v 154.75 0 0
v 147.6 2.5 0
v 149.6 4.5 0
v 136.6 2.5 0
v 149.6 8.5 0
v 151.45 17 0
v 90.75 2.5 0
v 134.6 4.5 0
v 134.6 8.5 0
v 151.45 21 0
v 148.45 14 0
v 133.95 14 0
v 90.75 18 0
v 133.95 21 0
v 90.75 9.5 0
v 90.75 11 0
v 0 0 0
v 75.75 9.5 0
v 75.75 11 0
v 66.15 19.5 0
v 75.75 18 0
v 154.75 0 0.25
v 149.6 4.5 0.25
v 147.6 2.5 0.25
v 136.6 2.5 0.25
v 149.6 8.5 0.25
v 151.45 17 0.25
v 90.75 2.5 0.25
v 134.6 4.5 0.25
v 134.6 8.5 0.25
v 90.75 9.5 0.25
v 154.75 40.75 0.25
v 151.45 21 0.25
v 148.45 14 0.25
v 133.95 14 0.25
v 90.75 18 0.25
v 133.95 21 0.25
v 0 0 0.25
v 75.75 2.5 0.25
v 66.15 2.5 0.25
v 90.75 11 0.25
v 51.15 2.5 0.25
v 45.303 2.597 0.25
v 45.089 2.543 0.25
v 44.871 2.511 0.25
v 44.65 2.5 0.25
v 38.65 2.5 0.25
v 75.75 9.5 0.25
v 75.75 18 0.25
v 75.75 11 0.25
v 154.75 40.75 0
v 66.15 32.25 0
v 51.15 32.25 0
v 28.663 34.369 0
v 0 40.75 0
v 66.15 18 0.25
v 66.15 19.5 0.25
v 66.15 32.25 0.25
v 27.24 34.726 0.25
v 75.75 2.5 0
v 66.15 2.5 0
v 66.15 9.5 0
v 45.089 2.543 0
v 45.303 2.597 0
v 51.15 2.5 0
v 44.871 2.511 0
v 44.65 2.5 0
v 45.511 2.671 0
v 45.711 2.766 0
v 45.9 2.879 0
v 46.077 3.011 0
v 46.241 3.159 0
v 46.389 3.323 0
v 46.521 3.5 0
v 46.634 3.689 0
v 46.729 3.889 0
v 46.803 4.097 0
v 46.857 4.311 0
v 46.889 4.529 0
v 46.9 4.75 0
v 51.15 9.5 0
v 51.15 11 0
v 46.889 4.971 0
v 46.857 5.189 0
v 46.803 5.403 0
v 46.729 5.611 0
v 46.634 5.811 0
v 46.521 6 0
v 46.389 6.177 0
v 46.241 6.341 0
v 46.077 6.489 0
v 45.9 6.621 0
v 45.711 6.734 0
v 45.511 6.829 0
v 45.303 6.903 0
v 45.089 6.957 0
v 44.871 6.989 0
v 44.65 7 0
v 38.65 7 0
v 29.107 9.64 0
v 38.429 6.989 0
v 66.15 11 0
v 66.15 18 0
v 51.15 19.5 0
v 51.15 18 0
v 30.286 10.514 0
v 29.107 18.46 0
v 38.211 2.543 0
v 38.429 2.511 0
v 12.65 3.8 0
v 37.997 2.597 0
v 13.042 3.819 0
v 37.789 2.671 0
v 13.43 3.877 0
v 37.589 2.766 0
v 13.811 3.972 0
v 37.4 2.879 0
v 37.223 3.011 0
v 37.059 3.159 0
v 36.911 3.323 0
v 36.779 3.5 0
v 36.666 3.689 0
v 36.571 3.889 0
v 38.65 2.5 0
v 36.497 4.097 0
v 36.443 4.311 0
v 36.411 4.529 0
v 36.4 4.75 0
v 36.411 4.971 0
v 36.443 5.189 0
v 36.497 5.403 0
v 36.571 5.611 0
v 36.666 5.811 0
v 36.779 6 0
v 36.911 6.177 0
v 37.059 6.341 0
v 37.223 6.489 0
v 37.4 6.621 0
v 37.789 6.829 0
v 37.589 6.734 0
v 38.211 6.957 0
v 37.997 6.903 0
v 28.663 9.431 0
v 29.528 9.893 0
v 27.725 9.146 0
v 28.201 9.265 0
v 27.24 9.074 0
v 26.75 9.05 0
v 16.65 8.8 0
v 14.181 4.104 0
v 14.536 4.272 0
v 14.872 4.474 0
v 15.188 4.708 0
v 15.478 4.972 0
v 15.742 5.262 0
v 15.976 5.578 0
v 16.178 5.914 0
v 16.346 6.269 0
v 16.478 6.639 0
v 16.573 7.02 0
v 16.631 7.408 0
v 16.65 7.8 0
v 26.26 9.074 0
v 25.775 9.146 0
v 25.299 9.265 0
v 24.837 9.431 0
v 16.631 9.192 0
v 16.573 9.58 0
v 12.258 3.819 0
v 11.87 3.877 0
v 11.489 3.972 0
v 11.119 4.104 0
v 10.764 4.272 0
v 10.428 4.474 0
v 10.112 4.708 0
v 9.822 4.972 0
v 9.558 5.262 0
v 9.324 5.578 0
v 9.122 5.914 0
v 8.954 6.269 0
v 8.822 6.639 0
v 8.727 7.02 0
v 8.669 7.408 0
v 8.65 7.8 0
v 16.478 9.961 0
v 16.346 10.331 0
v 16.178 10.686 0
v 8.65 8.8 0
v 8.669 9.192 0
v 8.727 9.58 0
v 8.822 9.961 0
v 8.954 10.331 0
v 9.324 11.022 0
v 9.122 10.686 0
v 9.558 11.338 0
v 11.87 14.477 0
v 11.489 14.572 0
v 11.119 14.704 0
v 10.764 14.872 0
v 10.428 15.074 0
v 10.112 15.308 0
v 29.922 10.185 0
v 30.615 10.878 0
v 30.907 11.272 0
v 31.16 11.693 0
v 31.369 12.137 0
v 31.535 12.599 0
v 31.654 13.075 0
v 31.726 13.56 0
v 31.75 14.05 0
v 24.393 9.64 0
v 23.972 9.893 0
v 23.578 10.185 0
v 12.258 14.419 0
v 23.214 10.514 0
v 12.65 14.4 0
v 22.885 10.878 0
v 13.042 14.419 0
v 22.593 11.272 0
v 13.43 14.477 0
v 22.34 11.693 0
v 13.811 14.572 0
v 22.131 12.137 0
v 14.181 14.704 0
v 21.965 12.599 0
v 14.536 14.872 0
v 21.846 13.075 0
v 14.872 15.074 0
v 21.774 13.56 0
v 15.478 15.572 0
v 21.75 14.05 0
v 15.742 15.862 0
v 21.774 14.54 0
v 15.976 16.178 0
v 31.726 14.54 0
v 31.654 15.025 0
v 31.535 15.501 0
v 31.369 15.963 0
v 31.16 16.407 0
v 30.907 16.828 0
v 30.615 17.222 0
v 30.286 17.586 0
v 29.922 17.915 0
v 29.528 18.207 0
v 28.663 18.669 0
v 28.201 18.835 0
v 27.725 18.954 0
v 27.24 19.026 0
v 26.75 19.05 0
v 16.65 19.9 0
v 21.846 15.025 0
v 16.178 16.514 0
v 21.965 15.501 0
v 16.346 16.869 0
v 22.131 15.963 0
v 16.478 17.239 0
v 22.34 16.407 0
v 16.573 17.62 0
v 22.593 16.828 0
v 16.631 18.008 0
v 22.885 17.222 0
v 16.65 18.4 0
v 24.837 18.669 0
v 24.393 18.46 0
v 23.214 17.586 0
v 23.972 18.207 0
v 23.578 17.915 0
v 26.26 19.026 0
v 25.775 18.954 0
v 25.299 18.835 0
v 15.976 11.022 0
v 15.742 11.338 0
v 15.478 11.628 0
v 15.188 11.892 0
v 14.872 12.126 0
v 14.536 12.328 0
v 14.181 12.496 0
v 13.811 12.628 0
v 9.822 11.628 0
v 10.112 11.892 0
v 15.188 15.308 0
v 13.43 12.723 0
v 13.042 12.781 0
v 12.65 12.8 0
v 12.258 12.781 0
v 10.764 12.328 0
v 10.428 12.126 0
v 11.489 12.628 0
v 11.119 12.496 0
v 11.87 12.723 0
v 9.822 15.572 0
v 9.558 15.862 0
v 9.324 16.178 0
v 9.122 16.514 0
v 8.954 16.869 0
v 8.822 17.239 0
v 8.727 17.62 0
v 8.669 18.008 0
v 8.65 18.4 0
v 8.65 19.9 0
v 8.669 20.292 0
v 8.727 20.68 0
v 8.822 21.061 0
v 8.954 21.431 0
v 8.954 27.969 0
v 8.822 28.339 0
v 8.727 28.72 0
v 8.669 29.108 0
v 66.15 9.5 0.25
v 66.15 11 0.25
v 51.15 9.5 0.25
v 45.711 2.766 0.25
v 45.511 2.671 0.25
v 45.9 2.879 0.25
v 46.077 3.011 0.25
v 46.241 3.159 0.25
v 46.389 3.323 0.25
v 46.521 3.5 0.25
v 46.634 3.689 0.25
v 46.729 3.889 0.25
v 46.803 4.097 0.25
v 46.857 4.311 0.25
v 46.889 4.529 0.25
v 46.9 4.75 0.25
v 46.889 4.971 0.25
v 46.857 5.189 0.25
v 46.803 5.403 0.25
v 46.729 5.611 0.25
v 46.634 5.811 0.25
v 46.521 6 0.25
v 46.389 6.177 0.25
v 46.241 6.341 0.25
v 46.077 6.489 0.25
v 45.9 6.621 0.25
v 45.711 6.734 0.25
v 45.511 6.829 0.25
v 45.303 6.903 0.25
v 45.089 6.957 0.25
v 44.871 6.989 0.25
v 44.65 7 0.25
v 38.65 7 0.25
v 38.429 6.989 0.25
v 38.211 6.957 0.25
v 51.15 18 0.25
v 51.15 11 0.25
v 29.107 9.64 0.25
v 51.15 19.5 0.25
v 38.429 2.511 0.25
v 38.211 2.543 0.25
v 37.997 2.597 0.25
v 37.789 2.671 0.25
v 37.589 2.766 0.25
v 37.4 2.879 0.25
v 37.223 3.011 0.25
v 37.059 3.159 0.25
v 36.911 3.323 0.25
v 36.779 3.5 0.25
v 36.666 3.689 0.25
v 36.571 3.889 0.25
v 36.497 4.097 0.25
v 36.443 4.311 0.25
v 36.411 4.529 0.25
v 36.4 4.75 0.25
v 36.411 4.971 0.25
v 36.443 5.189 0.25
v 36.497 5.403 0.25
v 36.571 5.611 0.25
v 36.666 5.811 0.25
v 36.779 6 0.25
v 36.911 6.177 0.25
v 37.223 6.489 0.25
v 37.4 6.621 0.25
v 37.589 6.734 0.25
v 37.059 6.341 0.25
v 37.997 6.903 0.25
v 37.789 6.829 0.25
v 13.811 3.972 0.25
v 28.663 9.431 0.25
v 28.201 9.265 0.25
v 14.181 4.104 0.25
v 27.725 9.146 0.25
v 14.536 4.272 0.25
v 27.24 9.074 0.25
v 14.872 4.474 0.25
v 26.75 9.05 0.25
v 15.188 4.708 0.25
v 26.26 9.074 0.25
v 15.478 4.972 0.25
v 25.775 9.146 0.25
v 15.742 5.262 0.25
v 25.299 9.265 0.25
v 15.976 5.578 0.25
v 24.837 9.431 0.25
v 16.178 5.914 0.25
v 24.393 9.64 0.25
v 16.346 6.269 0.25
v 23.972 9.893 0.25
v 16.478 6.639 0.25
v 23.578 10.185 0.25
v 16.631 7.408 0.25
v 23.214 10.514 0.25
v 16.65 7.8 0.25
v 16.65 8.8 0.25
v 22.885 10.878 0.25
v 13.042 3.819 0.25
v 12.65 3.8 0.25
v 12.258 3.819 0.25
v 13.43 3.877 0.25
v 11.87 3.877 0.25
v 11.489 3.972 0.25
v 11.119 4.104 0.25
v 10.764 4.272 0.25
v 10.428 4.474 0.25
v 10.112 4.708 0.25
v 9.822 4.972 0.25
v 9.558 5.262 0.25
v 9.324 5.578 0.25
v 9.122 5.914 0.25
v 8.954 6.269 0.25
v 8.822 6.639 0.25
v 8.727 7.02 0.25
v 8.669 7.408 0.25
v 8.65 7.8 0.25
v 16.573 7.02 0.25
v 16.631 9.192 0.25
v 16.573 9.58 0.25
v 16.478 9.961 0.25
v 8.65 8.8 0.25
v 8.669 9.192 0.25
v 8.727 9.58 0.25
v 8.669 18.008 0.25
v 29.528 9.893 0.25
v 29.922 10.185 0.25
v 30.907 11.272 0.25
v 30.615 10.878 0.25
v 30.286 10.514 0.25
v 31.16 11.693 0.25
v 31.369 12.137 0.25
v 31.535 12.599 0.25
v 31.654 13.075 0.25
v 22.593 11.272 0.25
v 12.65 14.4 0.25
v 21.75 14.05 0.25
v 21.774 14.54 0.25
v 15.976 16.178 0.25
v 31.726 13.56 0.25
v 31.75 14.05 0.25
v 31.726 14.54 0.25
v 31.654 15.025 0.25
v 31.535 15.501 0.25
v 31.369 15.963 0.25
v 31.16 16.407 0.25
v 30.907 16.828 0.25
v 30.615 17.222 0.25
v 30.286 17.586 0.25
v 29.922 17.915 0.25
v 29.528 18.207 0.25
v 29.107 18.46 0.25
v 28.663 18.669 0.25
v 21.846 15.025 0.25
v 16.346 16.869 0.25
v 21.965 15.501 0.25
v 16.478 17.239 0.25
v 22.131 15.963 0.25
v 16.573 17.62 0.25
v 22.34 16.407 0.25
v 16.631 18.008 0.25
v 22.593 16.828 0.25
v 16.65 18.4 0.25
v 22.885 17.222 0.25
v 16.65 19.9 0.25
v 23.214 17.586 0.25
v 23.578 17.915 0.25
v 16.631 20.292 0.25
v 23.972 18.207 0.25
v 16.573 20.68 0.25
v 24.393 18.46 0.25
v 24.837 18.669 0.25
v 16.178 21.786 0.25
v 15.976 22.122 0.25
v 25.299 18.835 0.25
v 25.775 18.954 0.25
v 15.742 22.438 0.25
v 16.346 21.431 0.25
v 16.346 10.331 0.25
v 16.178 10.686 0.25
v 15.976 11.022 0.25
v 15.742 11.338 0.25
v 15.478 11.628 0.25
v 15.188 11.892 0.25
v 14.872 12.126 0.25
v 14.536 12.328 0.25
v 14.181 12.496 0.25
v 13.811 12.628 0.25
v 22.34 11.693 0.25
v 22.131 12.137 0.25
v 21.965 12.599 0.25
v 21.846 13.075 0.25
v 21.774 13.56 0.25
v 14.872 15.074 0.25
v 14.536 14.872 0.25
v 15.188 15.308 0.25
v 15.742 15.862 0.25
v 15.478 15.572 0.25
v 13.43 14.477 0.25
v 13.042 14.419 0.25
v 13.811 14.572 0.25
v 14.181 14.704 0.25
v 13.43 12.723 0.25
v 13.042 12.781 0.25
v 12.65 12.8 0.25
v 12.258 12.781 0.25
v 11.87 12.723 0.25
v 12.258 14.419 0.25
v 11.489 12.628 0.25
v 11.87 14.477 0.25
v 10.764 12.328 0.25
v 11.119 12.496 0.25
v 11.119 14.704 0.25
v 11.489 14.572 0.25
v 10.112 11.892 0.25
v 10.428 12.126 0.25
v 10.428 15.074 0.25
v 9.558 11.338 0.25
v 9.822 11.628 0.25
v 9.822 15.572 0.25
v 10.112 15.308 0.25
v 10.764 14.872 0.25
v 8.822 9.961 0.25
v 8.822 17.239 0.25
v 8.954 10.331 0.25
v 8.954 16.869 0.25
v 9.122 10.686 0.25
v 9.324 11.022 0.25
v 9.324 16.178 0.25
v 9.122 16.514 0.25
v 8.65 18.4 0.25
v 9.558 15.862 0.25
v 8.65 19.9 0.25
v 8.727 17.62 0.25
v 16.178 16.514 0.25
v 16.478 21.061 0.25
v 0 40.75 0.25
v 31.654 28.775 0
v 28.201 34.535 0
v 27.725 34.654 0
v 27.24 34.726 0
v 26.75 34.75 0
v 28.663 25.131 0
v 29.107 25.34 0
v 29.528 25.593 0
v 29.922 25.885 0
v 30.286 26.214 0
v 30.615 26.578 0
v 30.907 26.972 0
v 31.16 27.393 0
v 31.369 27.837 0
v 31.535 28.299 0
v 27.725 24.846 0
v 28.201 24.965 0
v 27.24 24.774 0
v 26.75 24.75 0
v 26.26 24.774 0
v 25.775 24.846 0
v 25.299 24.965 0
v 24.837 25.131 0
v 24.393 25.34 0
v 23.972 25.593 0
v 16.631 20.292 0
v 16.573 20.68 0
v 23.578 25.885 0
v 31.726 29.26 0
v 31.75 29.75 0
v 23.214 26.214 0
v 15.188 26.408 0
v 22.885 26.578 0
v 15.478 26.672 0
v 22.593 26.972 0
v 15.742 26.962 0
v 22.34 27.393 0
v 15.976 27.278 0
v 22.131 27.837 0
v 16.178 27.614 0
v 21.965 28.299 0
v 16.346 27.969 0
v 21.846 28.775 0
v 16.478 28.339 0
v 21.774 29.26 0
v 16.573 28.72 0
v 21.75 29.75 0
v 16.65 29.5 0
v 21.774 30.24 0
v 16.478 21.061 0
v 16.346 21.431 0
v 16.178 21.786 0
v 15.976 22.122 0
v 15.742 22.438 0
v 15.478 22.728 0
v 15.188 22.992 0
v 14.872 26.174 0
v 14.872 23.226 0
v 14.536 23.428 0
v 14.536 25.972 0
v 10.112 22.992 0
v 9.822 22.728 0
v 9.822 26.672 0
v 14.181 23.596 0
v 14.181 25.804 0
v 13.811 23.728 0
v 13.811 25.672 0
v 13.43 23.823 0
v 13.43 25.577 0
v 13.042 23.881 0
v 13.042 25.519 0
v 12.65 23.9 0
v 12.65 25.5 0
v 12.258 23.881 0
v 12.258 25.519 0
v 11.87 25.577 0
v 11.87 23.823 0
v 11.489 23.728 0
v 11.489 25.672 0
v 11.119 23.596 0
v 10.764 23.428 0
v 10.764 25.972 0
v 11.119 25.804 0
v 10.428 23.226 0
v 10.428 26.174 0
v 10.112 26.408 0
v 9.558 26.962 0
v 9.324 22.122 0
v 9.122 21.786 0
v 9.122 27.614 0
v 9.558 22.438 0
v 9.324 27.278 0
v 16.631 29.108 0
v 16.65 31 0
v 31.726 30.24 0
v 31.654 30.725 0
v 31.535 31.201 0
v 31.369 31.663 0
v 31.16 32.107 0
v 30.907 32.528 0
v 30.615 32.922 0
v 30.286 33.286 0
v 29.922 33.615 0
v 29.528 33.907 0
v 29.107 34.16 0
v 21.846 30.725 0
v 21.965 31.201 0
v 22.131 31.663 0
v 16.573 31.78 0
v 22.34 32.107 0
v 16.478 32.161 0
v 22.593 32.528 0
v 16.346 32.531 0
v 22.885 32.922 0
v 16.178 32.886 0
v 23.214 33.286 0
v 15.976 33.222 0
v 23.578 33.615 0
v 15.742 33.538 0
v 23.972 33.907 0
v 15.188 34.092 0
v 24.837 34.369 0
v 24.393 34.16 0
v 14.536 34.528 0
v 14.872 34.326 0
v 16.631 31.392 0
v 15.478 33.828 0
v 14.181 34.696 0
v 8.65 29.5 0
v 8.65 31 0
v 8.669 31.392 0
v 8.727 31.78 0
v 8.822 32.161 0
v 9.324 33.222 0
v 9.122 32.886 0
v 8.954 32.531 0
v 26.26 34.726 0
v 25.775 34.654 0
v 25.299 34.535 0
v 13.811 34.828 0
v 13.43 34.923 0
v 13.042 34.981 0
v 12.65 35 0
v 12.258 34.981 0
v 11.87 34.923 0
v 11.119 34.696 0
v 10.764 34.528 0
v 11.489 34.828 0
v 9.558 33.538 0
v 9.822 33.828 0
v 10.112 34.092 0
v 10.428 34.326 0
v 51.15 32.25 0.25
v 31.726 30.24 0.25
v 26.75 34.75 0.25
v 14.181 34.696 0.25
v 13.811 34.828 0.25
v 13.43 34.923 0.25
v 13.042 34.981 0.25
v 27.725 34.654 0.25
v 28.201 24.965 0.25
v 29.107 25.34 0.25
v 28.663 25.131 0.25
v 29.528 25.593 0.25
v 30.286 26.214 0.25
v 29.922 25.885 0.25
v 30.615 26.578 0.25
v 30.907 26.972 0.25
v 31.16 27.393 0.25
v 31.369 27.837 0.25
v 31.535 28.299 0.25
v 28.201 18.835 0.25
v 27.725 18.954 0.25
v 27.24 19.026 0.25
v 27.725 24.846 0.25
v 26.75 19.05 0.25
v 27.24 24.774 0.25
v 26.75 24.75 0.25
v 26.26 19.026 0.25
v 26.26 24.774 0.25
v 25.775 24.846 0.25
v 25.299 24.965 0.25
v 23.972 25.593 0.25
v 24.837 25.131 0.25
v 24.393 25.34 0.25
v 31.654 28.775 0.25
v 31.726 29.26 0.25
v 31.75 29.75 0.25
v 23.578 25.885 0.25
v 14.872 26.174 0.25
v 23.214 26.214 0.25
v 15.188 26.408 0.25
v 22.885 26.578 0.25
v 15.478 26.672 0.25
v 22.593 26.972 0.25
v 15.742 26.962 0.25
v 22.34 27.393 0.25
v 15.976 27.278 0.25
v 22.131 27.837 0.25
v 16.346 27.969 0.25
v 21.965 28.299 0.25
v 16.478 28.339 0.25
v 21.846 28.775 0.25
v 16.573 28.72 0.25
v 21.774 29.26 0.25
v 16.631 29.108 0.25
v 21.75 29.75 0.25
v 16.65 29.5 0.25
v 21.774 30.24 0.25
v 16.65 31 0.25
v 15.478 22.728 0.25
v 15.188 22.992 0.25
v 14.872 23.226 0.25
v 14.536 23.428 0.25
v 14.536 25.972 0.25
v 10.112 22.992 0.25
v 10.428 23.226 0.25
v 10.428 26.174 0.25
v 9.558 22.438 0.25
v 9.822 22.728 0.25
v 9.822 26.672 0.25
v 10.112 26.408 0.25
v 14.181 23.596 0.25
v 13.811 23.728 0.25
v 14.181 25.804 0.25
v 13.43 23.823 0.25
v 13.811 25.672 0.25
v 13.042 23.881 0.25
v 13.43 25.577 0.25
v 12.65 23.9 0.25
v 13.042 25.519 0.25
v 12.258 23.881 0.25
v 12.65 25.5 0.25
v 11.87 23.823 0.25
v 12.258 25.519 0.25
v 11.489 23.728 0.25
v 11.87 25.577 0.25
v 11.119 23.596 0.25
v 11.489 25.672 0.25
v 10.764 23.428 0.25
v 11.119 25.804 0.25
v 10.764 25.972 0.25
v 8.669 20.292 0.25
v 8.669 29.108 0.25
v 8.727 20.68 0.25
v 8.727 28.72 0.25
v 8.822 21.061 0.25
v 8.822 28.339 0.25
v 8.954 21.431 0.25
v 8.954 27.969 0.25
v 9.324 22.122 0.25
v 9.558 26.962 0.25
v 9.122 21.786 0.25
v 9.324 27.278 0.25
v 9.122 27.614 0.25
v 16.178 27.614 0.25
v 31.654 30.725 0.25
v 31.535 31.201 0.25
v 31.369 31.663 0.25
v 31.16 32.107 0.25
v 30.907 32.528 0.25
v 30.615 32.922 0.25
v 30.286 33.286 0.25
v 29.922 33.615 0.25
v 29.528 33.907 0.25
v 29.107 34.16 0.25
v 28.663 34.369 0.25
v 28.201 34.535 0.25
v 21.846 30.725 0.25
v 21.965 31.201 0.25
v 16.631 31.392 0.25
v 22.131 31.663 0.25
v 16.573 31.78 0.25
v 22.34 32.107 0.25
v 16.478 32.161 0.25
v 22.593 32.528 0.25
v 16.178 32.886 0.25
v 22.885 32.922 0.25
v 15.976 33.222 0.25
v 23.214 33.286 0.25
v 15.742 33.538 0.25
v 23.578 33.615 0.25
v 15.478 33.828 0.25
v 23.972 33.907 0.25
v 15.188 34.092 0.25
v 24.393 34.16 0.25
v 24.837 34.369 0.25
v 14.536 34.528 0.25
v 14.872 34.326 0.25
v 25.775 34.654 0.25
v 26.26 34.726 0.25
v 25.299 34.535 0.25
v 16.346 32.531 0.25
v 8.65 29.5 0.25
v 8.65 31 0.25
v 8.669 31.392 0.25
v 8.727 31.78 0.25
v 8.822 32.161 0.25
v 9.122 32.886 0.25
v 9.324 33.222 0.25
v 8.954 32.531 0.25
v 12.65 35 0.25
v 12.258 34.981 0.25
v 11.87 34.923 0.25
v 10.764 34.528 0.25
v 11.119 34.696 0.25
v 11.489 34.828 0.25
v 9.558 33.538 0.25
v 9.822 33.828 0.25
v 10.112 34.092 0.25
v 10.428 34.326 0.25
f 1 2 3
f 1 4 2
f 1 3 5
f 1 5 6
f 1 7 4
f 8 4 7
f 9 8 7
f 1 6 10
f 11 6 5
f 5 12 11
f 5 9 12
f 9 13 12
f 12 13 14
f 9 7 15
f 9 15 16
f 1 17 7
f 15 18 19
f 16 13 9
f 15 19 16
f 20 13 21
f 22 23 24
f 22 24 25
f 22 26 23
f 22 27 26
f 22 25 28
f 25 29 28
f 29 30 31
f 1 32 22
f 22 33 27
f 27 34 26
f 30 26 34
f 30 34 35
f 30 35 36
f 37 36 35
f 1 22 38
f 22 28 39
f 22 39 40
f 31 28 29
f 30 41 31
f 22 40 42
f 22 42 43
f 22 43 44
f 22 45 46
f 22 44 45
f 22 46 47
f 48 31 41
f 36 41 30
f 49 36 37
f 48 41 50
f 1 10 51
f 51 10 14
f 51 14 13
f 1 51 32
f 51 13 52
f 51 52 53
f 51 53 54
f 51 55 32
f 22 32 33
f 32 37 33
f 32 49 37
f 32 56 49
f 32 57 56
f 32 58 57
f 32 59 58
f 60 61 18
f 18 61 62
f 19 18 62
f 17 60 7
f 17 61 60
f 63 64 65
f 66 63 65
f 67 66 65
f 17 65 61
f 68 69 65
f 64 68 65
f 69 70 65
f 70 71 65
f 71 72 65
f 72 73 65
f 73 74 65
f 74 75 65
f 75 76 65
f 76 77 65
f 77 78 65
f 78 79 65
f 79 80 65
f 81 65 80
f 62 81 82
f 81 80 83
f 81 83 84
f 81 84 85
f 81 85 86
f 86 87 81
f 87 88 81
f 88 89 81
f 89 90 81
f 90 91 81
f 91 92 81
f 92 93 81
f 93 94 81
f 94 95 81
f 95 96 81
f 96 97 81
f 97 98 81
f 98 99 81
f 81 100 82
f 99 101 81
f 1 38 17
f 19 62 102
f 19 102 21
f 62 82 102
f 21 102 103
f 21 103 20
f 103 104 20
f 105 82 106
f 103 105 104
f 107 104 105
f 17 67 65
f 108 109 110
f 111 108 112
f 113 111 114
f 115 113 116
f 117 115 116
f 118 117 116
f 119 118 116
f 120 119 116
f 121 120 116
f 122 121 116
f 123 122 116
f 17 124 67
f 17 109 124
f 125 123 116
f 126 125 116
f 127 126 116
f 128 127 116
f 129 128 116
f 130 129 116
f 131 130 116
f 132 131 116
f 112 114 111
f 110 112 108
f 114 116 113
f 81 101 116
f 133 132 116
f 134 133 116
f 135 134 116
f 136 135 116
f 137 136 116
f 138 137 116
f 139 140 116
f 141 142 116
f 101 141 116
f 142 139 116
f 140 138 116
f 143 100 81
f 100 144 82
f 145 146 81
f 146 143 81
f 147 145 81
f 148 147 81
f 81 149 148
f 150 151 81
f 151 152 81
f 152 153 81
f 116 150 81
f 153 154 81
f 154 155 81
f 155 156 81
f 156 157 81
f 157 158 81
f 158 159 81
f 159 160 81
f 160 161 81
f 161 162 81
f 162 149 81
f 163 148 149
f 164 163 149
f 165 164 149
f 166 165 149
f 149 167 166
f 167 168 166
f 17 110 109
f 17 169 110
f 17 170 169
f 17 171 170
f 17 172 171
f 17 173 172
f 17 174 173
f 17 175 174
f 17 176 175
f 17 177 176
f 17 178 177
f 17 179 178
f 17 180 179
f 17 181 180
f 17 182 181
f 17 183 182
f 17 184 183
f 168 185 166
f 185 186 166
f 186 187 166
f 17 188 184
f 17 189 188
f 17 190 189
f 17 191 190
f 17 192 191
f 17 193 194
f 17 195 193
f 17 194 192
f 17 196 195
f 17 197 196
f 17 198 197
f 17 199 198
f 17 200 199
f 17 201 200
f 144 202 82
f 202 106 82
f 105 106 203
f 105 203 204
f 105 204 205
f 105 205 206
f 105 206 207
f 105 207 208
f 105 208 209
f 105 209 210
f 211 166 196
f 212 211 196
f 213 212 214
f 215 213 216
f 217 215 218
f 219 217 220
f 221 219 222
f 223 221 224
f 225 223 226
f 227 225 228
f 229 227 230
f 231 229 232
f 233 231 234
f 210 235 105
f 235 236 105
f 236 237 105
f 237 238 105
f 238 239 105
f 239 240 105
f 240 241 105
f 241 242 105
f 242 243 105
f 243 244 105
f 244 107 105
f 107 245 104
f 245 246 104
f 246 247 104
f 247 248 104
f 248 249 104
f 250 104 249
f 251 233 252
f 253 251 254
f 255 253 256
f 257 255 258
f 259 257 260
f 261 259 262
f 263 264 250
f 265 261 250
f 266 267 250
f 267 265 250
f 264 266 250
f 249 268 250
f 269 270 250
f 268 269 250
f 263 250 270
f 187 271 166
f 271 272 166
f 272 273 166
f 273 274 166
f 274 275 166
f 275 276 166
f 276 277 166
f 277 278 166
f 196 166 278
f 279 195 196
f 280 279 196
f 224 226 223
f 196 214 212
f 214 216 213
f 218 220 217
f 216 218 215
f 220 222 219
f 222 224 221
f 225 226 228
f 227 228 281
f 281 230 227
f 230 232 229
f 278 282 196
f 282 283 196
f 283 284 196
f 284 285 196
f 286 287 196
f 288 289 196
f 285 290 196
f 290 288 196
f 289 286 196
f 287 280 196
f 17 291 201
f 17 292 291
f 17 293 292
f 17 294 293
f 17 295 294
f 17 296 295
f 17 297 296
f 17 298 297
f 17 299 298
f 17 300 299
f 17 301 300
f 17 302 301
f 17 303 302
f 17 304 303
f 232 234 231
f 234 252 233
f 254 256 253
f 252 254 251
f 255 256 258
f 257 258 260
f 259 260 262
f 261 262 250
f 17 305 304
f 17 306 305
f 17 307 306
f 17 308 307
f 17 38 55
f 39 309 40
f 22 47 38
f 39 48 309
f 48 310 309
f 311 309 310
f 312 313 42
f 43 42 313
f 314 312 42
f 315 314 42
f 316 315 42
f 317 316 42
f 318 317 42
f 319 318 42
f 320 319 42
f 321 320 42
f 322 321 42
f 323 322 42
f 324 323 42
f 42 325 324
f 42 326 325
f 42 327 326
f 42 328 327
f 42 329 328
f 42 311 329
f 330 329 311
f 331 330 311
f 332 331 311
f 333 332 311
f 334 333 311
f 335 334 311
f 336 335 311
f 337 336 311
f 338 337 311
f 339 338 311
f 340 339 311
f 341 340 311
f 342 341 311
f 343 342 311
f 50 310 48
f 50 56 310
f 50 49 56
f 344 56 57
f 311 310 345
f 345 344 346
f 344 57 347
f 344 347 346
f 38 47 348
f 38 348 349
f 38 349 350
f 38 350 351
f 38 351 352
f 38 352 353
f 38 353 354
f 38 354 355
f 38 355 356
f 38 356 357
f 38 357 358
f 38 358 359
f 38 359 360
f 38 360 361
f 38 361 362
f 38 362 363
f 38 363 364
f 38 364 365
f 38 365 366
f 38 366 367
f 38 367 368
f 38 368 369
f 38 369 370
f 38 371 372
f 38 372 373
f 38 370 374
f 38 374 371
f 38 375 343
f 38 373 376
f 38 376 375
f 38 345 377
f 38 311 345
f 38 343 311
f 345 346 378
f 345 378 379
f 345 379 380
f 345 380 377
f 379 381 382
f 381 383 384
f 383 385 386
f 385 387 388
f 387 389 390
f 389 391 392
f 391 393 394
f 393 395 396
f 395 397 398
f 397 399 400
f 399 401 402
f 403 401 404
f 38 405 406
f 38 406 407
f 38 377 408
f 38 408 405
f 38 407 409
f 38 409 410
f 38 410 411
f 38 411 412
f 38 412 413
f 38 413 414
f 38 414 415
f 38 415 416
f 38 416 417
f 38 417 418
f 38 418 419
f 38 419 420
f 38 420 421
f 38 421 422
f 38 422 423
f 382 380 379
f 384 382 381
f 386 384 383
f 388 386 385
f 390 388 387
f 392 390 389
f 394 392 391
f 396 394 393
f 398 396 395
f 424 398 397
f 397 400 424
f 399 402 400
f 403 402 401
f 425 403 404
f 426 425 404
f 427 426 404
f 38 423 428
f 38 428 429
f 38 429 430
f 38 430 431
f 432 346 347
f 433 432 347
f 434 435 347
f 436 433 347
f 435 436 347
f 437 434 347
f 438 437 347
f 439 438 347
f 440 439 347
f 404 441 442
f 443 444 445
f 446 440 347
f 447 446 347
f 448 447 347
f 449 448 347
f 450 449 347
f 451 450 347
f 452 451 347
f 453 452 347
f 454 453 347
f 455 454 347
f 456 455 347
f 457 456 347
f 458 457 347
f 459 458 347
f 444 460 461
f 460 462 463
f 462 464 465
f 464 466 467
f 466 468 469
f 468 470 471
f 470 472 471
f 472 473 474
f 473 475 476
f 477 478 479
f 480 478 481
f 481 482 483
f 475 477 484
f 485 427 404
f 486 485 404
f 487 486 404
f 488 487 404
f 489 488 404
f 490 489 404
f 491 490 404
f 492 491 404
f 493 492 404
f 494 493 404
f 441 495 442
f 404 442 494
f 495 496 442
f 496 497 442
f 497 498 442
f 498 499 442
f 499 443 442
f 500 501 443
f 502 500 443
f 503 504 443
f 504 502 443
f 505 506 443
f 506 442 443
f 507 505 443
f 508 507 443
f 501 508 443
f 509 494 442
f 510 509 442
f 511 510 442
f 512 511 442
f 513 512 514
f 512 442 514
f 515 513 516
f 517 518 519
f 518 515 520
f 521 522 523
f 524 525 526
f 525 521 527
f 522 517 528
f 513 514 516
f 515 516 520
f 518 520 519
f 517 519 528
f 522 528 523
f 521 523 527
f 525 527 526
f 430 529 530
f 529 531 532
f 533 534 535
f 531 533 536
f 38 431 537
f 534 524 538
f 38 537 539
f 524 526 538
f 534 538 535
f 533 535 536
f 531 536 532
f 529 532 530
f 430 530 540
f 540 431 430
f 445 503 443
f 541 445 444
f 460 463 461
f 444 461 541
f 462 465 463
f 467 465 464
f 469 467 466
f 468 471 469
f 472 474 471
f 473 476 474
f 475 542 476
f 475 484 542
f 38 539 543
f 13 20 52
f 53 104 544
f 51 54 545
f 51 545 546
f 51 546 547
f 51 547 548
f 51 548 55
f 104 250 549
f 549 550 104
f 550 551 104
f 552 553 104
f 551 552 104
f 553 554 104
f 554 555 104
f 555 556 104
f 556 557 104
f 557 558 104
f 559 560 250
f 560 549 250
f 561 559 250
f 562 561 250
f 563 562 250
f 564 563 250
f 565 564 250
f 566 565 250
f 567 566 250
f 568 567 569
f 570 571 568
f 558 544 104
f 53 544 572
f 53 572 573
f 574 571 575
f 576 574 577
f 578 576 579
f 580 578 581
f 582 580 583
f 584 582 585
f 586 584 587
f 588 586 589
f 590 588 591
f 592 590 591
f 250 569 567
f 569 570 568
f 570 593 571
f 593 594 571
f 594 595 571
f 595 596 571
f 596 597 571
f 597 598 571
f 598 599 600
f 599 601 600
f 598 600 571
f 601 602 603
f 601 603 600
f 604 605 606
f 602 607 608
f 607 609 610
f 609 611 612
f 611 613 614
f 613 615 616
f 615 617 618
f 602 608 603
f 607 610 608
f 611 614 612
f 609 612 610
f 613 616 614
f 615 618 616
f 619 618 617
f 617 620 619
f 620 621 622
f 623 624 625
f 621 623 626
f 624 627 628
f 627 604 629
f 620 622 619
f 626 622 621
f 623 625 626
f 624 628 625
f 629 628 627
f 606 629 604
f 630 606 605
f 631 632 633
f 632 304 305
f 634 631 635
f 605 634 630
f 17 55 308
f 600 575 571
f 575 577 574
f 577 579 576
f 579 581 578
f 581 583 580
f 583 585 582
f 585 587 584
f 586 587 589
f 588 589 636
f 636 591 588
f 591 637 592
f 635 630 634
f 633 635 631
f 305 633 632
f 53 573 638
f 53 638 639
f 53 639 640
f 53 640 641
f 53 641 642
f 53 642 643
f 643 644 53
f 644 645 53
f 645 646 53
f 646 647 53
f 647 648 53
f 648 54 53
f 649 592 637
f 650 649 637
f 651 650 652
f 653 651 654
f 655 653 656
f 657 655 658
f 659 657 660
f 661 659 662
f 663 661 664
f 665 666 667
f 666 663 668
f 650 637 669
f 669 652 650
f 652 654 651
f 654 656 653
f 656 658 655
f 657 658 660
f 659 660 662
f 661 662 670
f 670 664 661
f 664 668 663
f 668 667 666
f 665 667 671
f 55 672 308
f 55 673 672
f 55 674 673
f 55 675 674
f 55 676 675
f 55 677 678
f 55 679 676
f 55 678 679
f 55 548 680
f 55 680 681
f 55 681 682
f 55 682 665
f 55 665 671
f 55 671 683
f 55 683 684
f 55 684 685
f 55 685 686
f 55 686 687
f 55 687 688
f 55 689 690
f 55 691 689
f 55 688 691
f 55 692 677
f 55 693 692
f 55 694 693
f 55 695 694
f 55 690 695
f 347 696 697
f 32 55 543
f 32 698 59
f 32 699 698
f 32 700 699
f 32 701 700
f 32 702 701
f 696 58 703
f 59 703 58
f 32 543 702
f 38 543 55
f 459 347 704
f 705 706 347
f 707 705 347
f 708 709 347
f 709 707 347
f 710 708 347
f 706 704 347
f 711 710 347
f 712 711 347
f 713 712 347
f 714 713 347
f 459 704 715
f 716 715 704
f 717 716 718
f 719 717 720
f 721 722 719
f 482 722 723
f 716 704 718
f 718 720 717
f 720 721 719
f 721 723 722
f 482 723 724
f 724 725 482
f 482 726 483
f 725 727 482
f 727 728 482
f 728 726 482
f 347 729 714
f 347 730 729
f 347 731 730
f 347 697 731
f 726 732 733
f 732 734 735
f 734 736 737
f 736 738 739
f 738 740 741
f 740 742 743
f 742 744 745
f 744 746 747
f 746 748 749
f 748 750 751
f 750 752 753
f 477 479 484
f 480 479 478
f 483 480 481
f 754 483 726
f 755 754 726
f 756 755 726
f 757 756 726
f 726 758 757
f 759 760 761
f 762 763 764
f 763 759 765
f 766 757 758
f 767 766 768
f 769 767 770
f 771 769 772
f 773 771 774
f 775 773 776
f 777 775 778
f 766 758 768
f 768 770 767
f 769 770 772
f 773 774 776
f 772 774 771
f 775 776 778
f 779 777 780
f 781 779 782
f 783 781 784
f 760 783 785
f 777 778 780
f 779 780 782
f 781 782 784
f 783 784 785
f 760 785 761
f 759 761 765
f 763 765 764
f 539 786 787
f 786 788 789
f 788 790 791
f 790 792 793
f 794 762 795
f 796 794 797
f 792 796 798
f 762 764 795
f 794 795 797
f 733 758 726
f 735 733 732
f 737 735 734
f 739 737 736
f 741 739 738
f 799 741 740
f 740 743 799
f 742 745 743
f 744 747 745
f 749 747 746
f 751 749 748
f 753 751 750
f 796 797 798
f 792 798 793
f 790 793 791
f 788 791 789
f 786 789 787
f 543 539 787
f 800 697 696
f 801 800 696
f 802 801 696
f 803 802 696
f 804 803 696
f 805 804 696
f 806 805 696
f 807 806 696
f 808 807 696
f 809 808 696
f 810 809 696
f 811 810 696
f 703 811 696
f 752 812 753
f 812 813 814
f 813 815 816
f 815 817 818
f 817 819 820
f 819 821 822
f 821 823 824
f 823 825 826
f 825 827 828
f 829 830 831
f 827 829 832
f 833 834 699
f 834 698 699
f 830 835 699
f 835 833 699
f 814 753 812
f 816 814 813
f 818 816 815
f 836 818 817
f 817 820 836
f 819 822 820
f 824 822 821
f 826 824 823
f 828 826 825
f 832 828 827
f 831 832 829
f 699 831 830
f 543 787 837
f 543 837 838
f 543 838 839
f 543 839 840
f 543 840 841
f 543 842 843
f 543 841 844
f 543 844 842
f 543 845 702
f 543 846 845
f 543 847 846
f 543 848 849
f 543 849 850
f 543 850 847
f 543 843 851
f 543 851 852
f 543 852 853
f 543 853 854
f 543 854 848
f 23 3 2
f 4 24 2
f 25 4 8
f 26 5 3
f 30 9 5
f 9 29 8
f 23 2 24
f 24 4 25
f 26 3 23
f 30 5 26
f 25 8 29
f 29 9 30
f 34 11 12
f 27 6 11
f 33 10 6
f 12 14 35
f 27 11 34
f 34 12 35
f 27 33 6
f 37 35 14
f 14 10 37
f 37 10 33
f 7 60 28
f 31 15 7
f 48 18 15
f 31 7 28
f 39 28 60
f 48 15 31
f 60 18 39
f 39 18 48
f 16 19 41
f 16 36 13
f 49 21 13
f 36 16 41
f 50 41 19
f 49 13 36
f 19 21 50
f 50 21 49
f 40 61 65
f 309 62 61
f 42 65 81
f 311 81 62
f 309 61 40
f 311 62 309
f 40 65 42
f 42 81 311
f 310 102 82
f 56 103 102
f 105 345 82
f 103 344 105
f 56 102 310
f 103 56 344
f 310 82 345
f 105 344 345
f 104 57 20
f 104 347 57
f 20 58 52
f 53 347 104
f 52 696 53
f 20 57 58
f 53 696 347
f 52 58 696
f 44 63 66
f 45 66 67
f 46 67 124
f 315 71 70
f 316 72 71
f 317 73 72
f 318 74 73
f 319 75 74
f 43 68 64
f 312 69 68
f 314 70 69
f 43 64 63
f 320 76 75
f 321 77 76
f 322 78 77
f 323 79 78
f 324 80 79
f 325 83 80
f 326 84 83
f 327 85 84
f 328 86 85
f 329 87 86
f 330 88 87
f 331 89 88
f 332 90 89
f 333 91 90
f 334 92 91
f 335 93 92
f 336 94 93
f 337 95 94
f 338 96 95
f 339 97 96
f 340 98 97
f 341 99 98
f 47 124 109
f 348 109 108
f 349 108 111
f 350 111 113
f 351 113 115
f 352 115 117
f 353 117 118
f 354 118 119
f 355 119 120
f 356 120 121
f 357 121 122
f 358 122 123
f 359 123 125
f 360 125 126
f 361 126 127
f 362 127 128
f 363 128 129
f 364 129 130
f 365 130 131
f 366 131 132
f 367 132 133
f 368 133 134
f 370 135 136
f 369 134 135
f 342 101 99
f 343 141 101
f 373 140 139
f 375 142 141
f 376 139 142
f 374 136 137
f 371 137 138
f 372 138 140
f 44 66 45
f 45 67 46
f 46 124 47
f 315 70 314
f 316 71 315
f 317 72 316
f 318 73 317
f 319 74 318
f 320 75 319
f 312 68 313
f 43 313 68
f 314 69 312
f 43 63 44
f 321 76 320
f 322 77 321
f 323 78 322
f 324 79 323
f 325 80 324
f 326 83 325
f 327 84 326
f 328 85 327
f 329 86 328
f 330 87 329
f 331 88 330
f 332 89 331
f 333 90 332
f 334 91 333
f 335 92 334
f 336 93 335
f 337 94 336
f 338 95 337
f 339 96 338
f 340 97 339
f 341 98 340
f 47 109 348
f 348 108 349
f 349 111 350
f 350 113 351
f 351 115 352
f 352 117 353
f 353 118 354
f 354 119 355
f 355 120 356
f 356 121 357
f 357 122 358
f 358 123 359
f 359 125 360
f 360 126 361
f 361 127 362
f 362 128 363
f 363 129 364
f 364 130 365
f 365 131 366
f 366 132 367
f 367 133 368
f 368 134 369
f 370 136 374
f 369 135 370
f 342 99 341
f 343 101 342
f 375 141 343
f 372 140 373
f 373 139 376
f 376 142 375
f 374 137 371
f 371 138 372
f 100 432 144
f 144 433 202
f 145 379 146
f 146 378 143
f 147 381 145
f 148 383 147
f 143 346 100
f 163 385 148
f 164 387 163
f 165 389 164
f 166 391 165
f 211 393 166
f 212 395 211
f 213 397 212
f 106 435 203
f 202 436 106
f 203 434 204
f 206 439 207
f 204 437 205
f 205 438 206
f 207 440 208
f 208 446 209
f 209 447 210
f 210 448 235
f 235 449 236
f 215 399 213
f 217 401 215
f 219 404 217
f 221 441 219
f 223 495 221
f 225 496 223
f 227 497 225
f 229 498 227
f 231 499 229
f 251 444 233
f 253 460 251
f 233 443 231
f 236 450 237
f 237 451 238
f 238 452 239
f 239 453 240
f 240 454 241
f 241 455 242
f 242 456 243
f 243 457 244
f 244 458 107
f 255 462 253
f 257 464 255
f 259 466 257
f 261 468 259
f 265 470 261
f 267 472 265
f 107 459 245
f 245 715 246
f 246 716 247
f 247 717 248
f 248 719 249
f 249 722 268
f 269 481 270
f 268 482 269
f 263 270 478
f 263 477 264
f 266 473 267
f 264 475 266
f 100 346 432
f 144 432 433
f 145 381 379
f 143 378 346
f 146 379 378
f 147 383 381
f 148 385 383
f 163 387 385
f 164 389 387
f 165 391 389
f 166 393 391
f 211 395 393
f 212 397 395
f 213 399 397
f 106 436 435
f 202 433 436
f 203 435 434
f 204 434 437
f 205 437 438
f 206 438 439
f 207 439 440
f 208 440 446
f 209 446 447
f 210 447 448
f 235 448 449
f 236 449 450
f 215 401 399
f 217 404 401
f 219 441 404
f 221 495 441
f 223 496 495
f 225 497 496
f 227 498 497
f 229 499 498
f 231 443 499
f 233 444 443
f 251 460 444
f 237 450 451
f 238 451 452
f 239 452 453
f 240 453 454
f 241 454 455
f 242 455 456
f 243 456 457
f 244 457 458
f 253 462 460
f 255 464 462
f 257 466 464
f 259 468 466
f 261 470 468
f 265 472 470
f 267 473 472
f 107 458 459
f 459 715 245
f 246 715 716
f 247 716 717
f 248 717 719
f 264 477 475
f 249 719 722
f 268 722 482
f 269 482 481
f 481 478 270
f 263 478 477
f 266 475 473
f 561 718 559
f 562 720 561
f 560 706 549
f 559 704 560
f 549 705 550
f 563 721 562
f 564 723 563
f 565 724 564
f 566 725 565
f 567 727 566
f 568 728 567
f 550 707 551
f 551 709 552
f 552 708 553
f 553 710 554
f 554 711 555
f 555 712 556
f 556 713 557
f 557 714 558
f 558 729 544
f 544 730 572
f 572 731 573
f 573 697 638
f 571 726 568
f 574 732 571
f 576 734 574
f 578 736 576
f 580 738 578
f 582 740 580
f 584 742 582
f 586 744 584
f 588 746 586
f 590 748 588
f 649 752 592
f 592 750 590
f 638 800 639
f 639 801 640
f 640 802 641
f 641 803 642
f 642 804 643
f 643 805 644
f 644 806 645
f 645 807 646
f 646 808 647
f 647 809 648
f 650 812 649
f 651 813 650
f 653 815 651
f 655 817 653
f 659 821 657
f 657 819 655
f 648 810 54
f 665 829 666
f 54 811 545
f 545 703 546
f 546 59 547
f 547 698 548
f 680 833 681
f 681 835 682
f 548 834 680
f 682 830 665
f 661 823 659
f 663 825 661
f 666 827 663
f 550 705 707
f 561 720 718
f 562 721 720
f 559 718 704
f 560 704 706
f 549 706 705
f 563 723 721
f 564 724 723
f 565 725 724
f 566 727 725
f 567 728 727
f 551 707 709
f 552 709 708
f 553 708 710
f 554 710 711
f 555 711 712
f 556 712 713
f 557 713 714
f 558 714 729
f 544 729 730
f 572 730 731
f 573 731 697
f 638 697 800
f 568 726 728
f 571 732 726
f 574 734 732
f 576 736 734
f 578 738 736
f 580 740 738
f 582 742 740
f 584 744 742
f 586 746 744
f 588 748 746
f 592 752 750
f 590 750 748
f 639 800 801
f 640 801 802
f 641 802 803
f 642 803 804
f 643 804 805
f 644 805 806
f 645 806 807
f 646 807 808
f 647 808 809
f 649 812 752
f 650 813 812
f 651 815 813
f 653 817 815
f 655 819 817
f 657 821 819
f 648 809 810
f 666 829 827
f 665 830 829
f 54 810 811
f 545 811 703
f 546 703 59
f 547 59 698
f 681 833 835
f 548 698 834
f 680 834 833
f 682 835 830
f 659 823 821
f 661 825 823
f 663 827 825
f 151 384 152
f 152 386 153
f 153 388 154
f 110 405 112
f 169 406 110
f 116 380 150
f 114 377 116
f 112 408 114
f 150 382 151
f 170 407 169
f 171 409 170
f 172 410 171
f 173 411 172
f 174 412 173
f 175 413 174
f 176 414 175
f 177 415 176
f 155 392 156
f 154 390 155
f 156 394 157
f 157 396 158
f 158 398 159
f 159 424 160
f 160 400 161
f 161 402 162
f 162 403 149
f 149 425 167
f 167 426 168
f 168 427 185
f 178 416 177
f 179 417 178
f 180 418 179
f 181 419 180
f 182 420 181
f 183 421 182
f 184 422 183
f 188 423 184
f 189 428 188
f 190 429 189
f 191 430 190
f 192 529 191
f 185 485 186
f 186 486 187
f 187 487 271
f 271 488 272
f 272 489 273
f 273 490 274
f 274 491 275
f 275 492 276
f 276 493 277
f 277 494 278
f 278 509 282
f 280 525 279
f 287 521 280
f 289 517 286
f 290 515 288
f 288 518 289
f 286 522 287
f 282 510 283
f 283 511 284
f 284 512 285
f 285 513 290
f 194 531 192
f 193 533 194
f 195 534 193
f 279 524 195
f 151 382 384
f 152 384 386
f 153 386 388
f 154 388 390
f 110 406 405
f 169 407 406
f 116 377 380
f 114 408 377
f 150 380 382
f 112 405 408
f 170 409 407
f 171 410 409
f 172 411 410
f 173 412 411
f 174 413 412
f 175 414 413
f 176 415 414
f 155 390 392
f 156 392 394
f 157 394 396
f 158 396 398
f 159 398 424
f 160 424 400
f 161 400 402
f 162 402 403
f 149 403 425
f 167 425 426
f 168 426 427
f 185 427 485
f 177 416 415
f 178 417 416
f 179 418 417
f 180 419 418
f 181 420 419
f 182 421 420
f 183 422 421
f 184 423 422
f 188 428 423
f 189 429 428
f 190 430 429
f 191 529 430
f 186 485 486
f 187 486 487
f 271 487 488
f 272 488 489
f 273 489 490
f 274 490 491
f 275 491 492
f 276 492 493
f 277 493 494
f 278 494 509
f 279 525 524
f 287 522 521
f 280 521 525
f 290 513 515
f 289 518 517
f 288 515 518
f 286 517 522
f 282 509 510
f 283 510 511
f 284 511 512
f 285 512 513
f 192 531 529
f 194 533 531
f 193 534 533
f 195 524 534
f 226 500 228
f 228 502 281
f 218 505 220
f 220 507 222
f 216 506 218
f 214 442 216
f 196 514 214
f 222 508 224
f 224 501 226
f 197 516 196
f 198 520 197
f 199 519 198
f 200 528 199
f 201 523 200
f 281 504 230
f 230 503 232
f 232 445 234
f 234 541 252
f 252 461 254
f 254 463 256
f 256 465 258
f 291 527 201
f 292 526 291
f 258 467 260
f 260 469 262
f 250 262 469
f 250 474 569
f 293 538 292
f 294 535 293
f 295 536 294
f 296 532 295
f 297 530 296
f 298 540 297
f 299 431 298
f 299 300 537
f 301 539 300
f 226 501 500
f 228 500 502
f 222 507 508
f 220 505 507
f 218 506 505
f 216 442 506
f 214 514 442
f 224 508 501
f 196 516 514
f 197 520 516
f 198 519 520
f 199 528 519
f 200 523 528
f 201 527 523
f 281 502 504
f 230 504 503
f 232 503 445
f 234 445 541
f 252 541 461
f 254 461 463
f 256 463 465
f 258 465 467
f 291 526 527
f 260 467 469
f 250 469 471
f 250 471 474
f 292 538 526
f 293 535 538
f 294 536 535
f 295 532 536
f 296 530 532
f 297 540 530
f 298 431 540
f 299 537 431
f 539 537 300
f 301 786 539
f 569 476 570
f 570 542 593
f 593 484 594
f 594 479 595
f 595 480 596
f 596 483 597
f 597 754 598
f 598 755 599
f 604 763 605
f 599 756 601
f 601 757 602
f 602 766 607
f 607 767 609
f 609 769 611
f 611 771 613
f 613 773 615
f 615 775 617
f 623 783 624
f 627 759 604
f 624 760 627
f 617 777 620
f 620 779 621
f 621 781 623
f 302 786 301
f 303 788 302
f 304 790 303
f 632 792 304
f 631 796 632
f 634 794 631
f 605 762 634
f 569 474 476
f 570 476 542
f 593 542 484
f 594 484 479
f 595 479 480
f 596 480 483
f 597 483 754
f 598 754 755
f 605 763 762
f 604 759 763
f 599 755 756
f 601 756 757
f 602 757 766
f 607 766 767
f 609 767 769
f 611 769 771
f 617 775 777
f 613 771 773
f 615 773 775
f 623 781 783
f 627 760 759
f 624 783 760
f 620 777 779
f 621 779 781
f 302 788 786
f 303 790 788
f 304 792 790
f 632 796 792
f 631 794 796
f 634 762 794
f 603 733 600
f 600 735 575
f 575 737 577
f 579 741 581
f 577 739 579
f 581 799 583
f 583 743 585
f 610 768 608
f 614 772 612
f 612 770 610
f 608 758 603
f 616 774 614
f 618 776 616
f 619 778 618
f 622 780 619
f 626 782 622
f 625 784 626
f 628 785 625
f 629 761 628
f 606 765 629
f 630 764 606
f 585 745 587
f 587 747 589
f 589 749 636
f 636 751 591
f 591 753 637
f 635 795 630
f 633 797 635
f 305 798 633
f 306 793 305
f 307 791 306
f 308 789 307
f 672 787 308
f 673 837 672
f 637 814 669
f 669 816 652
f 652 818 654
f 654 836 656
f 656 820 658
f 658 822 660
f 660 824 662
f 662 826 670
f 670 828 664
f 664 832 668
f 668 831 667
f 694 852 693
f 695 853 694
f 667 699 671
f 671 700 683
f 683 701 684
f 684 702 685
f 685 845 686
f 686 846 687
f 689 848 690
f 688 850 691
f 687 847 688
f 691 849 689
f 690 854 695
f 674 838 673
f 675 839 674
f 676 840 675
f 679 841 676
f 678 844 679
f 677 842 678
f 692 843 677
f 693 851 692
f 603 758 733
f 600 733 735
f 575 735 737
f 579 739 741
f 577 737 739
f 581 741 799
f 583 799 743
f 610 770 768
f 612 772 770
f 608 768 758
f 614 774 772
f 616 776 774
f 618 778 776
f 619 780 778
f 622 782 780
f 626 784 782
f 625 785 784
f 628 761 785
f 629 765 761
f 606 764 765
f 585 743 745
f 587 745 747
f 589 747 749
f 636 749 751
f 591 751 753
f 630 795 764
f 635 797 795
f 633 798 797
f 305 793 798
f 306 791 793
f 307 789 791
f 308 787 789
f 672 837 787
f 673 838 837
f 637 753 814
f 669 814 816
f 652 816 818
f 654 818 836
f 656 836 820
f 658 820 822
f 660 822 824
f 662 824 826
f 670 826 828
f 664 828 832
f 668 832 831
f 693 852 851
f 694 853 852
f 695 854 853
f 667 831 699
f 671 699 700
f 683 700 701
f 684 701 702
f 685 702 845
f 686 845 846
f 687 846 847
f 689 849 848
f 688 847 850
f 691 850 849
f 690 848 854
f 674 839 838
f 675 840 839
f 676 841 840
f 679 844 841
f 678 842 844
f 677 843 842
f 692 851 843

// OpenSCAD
// Asrock B760M ITX D4 - Custom IO Faceplate (Inner Insert Size)
// All dimensions in mm

// --- Outer Plate Parameters ---
plate_thickness = 0.25;    // [1.0:0.1:5.0]

// We derived plate_height from the Ethernet-to-top gap constraint (8.0mm)
// We added 1.5mm to the bottom of the plate, increasing total height.
plate_width = 154.75; 
plate_height = 40.75; // Was 39.25 + 1.5mm added to bottom


// ==========================================
// --- Port Layout Parameters ---
// ==========================================

// --- DisplayPort & HDMI ---
dp_w = 17.5;
dp_h = 7.0;
hdmi_w = 15.0;
hdmi_h = 6.0;

// Constraints:
// DP left edge is 3.3mm from left plate edge
dp_x = 3.3 + (dp_w / 2);
// HDMI left edge is 5.15mm from left plate edge
hdmi_x = 5.15 + (hdmi_w / 2);

// Master Y-Location for the Video Ports (Change this to raise both of them together!)
// Shifted +1.5mm to maintain absolute position since bottom edge moved down 1.5mm
hdmi_y = 5.5; 
// Gap between DP bottom and HDMI top is 5.25mm
dp_y = hdmi_y + (hdmi_h / 2) + 5.5 + (dp_h / 2);


// --- USB-A & Ethernet Stacks ---
// Width and Height Sizes
stack_w = 15.0;           
usb_a_h = 7.0;            
eth_h = 12.75;            

// Y-Locations & Gaps
usb_gap = 1.5;            
eth_gap = usb_gap;        

// Constraint: USB-C bottom and USB-A bottoms align. 
// Change this single variable to move all of them up or down together!
// Shifted +1.5mm to maintain absolute position since bottom edge moved down 1.5mm
usb_bottom_gap = 2.5;

usbc_w = 10.5;
usbc_h = 4.5;
usbc_y = usb_bottom_gap + (usbc_h / 2);
usb_bottom_y = usb_bottom_gap + (usb_a_h / 2);

// Calculated Y-Locations for the rest of the stack
usb_top_y = usb_bottom_y + (usb_a_h / 2) + usb_gap + (usb_a_h / 2);
eth_y = usb_top_y + (usb_a_h / 2) + eth_gap + (eth_h / 2);

// X-Locations
// Preserving the absolute X of the Left Stack from your last edit (77.0 - 1.5 offset = 75.5)
stack_left_x = 71.5;

// Constraint: Left stack is 9.6mm to the left of the right stack (edge to edge)
stack_right_x = stack_left_x + (stack_w / 2) + 9.6 + (stack_w / 2);

// Constraint: Right stack is 4.25mm to the left of the USB-C left edge
usbc_x = stack_right_x + (stack_w / 2) + 4.25 + (usbc_w / 2);


// --- Wi-Fi Antenna Holes ---
// Preserving the absolute X from your edits
wifi_x = 128.0;
wifi_hole_dia = 10.0;
wifi_gap = 5.7;           // Constraint: 5.7mm edge-to-edge gap between the holes

// Constraint: 5.5mm gap from top plate edge to the top edge of the top Wi-Fi hole
wifi_top_edge = plate_height - 6;
wifi_2_y = wifi_top_edge - (wifi_hole_dia / 2);
wifi_1_y = wifi_2_y - (wifi_hole_dia / 2) - wifi_gap - (wifi_hole_dia / 2);


// --- Audio Jacks ---
audio_x = 142.1;

audio_gap = 1.6;          // Constraint: 1.6mm edge-to-edge gap between analog audio jacks

audio_1_w = 8.0;
audio_1_h = 9.0;
audio_2_w = 8.0;
audio_2_h = 9.5;
audio_3_w = 8.0;
audio_3_h = 9.5;

// Constraint: 5.75mm gap from top plate edge to top edge of the top audio jack
audio_top_edge = plate_height - 5.75;
audio_3_y = audio_top_edge - (audio_3_h / 2);

// Calculated middle audio jack Y
audio_2_y = audio_3_y - (audio_3_h / 2) - audio_gap - (audio_2_h / 2);

// Calculated bottom audio jack Y
audio_1_y = audio_2_y - (audio_2_h / 2) - audio_gap - (audio_1_h / 2);


// ==========================================
// --- Main Module ---
// ==========================================

module io_faceplate() {
    difference() {
        // Main Plate
        cube([plate_width, plate_height, plate_thickness]);

        // HDMI Port
        translate([hdmi_x, hdmi_y, 0])
            hdmi_cutout(plate_thickness);

        // DisplayPort
        translate([dp_x, dp_y, 0])
            dp_cutout(plate_thickness);

        // --- Left USB Stack (2x USB-A) ---
        translate([stack_left_x, usb_bottom_y, 0])
            cut_rect(stack_w, usb_a_h, plate_thickness);
        translate([stack_left_x, usb_top_y, 0])
            cut_rect(stack_w, usb_a_h, plate_thickness);

        // --- Right USB Stack (Ethernet + 2x USB-A) ---
        translate([stack_right_x, usb_bottom_y, 0])
            cut_rect(stack_w, usb_a_h, plate_thickness);
        translate([stack_right_x, usb_top_y, 0])
            cut_rect(stack_w, usb_a_h, plate_thickness);
        // Ethernet (RJ45)
        translate([stack_right_x, eth_y, 0])
            cut_rect(stack_w, eth_h, plate_thickness);

        // USB-C
        translate([usbc_x, usbc_y, 0])
            pill_cutout(usbc_w, usbc_h, plate_thickness);

        // Wi-Fi Antenna Holes
        translate([wifi_x, wifi_1_y, 0])
            cut_circle(wifi_hole_dia / 2, plate_thickness);
        translate([wifi_x, wifi_2_y, 0])
            cut_circle(wifi_hole_dia / 2, plate_thickness);

        // Audio Jacks
        translate([audio_x, audio_1_y, 0])
            pill_cutout(audio_1_w, audio_1_h, plate_thickness);
        translate([audio_x, audio_2_y, 0])
            pill_cutout(audio_2_w, audio_2_h, plate_thickness);
        translate([audio_x, audio_3_y, 0])
            pill_cutout(audio_3_w, audio_3_h, plate_thickness);
    }
}

// --- Helper Modules for Port Shapes ---

module cut_rect(w, h, t) {
    translate([0, 0, -1])
        linear_extrude(t + 2)
            square([w, h], center=true);
}

module cut_circle(r, t) {
    translate([0, 0, -1])
        linear_extrude(t + 2)
            circle(r=r, $fn=64);
}

module hdmi_cutout(t) {
    w = 15.0;
    h = 6.0;
    c = 2.0; // chamfer
    
    points = [
        [-w/2, h/2],            // Top-Left
        [w/2, h/2],             // Top-Right
        [w/2, -h/2 + c],        // Right-Chamfer Start
        [w/2 - c, -h/2],        // Bottom-Right
        [-w/2 + c, -h/2],       // Bottom-Left
        [-w/2, -h/2 + c]        // Left-Chamfer Start
    ];
    translate([0, 0, -1])
        linear_extrude(t + 2)
            polygon(points);
}

module dp_cutout(t) {
    w = 17.5;
    h = 7.0;
    c = 3.0; // chamfer
    
    points = [
        [-w/2, h/2],            // Top-Left
        [w/2, h/2],             // Top-Right
        [w/2, -h/2],            // Bottom-Right
        [-w/2 + c, -h/2],       // Bottom-Left chamfer end
        [-w/2, -h/2 + c]        // Left chamfer start
    ];
    translate([0, 0, -1])
        linear_extrude(t + 2)
            polygon(points);
}

module pill_cutout(w, h, t) {
    translate([0, 0, -1])
    linear_extrude(t + 2) {
        if (w > h) {
            // Horizontal pill
            r = h / 2;
            hull() {
                translate([-w/2 + r, 0]) circle(r=r, $fn=64);
                translate([w/2 - r, 0]) circle(r=r, $fn=64);
            }
        } else {
            // Vertical pill
            r = w / 2;
            hull() {
                translate([0, -h/2 + r]) circle(r=r, $fn=64);
                translate([0, h/2 - r]) circle(r=r, $fn=64);
            }
        }
    }
}

// Instantiate the faceplate, mirrored horizontally so Video is on +X and Audio is on -X
translate([plate_width, 0, 0])
    mirror([1, 0, 0])
        io_faceplate();
